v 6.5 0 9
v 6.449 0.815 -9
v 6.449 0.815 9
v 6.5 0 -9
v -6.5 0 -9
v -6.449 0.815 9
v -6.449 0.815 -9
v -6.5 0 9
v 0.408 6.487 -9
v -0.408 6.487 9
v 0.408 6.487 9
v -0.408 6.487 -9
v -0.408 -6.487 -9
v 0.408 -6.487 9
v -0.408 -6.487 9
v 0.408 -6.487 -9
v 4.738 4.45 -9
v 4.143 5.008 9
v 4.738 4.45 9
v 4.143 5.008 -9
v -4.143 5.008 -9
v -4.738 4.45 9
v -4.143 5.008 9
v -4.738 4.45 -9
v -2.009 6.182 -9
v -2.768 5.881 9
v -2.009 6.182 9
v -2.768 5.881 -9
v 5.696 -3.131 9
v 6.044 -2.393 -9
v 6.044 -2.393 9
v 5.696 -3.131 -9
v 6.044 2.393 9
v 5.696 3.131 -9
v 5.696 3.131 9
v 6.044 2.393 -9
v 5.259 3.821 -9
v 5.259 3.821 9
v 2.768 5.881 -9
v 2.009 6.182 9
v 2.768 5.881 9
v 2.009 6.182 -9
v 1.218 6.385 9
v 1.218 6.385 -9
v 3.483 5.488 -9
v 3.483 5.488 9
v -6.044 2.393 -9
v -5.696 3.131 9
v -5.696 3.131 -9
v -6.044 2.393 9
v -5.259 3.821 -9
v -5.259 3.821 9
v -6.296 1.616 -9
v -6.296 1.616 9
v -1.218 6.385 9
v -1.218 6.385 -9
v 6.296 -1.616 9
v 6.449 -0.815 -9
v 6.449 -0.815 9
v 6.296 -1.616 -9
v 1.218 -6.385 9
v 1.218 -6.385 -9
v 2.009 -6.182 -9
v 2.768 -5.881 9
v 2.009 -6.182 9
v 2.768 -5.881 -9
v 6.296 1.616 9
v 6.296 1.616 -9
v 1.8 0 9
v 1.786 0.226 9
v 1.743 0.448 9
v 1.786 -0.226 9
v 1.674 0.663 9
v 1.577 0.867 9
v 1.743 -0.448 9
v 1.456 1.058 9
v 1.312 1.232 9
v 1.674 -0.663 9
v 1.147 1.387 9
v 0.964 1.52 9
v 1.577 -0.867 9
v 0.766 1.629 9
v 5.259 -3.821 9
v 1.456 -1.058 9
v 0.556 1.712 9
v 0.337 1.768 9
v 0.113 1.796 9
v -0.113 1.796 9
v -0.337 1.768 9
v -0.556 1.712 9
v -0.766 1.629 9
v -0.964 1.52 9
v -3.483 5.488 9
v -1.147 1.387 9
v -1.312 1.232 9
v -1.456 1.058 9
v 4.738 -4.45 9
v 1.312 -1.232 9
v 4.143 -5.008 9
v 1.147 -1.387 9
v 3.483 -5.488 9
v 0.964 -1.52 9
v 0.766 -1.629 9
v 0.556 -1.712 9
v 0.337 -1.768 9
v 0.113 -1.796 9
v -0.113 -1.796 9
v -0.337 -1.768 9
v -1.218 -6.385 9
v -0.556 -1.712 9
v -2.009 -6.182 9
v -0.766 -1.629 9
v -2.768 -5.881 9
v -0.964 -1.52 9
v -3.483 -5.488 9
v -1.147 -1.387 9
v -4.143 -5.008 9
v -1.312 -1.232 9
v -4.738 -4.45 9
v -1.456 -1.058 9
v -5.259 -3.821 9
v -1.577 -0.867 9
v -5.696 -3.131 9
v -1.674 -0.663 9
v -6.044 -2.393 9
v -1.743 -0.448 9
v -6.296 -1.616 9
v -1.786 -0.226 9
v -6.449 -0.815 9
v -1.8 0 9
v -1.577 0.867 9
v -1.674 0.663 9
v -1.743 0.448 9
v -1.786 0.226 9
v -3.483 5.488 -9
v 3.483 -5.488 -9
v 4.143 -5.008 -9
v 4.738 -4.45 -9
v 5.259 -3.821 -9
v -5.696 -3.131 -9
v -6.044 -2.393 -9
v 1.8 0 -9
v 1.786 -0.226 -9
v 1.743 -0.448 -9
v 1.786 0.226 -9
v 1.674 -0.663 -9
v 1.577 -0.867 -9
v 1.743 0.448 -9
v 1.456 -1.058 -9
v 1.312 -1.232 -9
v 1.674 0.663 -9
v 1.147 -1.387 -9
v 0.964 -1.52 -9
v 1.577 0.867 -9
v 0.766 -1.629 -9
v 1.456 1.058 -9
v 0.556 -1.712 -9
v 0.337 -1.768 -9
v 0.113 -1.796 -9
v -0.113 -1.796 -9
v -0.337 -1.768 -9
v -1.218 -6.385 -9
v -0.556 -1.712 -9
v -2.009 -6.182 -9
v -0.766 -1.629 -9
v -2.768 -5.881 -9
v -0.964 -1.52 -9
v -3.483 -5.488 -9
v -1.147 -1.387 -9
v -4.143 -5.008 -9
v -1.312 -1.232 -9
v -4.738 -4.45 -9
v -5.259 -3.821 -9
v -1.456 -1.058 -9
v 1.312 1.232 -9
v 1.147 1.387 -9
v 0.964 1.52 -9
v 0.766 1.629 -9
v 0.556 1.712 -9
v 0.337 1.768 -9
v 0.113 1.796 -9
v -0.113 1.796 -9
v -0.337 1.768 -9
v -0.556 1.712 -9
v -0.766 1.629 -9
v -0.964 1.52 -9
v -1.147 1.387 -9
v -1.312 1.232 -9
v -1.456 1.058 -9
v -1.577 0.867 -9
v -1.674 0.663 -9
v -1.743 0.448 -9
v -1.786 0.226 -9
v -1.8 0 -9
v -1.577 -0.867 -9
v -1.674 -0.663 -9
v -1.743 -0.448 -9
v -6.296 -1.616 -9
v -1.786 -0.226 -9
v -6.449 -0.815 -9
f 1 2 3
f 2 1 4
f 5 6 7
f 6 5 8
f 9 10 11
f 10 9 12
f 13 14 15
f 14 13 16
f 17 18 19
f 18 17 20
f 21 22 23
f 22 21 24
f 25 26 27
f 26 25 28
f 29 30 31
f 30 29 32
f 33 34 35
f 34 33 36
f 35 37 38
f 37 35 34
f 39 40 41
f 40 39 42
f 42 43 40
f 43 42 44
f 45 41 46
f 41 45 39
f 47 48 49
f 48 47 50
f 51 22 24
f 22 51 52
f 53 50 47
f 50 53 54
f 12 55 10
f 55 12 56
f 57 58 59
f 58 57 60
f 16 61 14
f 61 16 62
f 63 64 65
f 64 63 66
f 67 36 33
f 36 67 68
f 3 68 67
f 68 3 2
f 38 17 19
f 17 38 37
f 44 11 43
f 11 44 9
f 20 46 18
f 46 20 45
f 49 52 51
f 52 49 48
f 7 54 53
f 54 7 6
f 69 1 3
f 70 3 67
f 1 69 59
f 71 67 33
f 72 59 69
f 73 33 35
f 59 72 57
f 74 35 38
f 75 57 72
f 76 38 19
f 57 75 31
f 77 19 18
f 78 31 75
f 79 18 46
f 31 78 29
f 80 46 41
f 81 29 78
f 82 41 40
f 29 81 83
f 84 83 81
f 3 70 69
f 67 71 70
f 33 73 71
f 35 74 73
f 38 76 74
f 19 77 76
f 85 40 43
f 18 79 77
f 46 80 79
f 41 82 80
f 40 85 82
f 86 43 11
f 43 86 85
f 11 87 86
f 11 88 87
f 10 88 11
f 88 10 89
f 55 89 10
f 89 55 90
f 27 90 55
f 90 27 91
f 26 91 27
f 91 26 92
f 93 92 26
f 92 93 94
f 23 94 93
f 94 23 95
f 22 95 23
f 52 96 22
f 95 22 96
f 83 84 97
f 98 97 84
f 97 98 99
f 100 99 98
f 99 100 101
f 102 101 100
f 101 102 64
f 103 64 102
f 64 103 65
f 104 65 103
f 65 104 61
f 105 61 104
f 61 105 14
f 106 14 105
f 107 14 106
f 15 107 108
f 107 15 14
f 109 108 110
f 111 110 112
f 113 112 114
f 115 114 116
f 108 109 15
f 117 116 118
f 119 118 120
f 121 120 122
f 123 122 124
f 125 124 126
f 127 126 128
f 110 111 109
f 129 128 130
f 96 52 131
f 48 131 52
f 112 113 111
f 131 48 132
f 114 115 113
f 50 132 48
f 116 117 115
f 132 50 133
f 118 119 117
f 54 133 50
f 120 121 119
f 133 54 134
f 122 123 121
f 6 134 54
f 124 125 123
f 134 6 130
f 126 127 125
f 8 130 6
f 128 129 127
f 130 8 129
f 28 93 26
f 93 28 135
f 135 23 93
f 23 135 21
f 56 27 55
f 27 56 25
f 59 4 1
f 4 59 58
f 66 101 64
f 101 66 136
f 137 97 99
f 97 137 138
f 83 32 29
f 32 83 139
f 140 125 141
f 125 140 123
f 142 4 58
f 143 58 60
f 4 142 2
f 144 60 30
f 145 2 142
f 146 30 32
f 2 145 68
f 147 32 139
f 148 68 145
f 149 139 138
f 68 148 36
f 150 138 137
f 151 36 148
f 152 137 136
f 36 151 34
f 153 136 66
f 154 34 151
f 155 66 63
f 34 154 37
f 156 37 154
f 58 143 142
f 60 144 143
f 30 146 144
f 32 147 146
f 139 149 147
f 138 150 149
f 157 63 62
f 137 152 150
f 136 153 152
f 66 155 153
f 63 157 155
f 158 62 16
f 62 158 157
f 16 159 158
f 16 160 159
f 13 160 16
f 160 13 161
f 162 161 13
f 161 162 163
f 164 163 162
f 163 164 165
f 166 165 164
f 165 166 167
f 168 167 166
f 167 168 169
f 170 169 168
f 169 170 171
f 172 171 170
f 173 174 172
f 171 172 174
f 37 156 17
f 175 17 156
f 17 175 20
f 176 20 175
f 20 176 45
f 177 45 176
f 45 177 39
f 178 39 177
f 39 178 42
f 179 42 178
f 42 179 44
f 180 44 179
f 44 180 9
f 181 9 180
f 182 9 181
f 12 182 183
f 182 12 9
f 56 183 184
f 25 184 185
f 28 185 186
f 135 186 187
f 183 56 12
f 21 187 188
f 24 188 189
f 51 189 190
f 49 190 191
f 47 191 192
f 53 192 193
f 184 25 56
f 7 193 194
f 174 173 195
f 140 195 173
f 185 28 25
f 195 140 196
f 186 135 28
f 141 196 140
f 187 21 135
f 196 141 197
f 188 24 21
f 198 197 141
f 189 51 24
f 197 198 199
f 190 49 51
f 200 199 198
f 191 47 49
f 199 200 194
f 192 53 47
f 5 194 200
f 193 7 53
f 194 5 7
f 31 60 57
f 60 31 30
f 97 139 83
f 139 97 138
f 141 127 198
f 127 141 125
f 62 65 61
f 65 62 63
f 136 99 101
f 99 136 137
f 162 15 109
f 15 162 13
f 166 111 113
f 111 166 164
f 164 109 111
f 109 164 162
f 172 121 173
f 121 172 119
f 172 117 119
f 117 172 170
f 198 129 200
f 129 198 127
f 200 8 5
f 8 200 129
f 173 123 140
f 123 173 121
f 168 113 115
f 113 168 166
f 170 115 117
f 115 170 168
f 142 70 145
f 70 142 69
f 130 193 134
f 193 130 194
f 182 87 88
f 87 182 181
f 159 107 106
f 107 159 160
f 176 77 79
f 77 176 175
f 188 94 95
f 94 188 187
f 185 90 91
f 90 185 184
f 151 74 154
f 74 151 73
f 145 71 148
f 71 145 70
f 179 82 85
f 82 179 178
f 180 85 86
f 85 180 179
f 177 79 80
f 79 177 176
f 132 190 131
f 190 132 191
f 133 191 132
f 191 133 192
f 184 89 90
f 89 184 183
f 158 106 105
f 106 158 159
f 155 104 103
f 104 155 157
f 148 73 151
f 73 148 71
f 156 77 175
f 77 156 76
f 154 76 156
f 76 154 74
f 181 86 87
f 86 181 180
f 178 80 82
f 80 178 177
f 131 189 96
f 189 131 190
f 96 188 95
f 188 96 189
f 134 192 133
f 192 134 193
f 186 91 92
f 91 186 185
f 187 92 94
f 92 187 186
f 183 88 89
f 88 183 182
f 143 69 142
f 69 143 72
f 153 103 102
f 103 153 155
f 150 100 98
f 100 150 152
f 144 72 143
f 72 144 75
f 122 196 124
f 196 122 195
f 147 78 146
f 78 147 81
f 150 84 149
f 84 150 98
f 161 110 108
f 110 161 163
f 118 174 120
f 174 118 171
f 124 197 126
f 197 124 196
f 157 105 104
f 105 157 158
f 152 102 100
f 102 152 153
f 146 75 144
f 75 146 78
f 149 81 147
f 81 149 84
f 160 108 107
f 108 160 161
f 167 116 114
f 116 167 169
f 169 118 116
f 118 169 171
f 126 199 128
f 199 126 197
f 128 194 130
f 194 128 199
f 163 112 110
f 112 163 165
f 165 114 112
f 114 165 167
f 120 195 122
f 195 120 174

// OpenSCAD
$fn = 50;


difference() {
	union() {
		translate(v = [0, 0, -9.0000000000]) {
			cylinder(h = 18, r = 6.5000000000);
		}
	}
	union() {
		translate(v = [0, 0, -100.0000000000]) {
			cylinder(h = 200, r = 1.8000000000);
		}
	}
}
